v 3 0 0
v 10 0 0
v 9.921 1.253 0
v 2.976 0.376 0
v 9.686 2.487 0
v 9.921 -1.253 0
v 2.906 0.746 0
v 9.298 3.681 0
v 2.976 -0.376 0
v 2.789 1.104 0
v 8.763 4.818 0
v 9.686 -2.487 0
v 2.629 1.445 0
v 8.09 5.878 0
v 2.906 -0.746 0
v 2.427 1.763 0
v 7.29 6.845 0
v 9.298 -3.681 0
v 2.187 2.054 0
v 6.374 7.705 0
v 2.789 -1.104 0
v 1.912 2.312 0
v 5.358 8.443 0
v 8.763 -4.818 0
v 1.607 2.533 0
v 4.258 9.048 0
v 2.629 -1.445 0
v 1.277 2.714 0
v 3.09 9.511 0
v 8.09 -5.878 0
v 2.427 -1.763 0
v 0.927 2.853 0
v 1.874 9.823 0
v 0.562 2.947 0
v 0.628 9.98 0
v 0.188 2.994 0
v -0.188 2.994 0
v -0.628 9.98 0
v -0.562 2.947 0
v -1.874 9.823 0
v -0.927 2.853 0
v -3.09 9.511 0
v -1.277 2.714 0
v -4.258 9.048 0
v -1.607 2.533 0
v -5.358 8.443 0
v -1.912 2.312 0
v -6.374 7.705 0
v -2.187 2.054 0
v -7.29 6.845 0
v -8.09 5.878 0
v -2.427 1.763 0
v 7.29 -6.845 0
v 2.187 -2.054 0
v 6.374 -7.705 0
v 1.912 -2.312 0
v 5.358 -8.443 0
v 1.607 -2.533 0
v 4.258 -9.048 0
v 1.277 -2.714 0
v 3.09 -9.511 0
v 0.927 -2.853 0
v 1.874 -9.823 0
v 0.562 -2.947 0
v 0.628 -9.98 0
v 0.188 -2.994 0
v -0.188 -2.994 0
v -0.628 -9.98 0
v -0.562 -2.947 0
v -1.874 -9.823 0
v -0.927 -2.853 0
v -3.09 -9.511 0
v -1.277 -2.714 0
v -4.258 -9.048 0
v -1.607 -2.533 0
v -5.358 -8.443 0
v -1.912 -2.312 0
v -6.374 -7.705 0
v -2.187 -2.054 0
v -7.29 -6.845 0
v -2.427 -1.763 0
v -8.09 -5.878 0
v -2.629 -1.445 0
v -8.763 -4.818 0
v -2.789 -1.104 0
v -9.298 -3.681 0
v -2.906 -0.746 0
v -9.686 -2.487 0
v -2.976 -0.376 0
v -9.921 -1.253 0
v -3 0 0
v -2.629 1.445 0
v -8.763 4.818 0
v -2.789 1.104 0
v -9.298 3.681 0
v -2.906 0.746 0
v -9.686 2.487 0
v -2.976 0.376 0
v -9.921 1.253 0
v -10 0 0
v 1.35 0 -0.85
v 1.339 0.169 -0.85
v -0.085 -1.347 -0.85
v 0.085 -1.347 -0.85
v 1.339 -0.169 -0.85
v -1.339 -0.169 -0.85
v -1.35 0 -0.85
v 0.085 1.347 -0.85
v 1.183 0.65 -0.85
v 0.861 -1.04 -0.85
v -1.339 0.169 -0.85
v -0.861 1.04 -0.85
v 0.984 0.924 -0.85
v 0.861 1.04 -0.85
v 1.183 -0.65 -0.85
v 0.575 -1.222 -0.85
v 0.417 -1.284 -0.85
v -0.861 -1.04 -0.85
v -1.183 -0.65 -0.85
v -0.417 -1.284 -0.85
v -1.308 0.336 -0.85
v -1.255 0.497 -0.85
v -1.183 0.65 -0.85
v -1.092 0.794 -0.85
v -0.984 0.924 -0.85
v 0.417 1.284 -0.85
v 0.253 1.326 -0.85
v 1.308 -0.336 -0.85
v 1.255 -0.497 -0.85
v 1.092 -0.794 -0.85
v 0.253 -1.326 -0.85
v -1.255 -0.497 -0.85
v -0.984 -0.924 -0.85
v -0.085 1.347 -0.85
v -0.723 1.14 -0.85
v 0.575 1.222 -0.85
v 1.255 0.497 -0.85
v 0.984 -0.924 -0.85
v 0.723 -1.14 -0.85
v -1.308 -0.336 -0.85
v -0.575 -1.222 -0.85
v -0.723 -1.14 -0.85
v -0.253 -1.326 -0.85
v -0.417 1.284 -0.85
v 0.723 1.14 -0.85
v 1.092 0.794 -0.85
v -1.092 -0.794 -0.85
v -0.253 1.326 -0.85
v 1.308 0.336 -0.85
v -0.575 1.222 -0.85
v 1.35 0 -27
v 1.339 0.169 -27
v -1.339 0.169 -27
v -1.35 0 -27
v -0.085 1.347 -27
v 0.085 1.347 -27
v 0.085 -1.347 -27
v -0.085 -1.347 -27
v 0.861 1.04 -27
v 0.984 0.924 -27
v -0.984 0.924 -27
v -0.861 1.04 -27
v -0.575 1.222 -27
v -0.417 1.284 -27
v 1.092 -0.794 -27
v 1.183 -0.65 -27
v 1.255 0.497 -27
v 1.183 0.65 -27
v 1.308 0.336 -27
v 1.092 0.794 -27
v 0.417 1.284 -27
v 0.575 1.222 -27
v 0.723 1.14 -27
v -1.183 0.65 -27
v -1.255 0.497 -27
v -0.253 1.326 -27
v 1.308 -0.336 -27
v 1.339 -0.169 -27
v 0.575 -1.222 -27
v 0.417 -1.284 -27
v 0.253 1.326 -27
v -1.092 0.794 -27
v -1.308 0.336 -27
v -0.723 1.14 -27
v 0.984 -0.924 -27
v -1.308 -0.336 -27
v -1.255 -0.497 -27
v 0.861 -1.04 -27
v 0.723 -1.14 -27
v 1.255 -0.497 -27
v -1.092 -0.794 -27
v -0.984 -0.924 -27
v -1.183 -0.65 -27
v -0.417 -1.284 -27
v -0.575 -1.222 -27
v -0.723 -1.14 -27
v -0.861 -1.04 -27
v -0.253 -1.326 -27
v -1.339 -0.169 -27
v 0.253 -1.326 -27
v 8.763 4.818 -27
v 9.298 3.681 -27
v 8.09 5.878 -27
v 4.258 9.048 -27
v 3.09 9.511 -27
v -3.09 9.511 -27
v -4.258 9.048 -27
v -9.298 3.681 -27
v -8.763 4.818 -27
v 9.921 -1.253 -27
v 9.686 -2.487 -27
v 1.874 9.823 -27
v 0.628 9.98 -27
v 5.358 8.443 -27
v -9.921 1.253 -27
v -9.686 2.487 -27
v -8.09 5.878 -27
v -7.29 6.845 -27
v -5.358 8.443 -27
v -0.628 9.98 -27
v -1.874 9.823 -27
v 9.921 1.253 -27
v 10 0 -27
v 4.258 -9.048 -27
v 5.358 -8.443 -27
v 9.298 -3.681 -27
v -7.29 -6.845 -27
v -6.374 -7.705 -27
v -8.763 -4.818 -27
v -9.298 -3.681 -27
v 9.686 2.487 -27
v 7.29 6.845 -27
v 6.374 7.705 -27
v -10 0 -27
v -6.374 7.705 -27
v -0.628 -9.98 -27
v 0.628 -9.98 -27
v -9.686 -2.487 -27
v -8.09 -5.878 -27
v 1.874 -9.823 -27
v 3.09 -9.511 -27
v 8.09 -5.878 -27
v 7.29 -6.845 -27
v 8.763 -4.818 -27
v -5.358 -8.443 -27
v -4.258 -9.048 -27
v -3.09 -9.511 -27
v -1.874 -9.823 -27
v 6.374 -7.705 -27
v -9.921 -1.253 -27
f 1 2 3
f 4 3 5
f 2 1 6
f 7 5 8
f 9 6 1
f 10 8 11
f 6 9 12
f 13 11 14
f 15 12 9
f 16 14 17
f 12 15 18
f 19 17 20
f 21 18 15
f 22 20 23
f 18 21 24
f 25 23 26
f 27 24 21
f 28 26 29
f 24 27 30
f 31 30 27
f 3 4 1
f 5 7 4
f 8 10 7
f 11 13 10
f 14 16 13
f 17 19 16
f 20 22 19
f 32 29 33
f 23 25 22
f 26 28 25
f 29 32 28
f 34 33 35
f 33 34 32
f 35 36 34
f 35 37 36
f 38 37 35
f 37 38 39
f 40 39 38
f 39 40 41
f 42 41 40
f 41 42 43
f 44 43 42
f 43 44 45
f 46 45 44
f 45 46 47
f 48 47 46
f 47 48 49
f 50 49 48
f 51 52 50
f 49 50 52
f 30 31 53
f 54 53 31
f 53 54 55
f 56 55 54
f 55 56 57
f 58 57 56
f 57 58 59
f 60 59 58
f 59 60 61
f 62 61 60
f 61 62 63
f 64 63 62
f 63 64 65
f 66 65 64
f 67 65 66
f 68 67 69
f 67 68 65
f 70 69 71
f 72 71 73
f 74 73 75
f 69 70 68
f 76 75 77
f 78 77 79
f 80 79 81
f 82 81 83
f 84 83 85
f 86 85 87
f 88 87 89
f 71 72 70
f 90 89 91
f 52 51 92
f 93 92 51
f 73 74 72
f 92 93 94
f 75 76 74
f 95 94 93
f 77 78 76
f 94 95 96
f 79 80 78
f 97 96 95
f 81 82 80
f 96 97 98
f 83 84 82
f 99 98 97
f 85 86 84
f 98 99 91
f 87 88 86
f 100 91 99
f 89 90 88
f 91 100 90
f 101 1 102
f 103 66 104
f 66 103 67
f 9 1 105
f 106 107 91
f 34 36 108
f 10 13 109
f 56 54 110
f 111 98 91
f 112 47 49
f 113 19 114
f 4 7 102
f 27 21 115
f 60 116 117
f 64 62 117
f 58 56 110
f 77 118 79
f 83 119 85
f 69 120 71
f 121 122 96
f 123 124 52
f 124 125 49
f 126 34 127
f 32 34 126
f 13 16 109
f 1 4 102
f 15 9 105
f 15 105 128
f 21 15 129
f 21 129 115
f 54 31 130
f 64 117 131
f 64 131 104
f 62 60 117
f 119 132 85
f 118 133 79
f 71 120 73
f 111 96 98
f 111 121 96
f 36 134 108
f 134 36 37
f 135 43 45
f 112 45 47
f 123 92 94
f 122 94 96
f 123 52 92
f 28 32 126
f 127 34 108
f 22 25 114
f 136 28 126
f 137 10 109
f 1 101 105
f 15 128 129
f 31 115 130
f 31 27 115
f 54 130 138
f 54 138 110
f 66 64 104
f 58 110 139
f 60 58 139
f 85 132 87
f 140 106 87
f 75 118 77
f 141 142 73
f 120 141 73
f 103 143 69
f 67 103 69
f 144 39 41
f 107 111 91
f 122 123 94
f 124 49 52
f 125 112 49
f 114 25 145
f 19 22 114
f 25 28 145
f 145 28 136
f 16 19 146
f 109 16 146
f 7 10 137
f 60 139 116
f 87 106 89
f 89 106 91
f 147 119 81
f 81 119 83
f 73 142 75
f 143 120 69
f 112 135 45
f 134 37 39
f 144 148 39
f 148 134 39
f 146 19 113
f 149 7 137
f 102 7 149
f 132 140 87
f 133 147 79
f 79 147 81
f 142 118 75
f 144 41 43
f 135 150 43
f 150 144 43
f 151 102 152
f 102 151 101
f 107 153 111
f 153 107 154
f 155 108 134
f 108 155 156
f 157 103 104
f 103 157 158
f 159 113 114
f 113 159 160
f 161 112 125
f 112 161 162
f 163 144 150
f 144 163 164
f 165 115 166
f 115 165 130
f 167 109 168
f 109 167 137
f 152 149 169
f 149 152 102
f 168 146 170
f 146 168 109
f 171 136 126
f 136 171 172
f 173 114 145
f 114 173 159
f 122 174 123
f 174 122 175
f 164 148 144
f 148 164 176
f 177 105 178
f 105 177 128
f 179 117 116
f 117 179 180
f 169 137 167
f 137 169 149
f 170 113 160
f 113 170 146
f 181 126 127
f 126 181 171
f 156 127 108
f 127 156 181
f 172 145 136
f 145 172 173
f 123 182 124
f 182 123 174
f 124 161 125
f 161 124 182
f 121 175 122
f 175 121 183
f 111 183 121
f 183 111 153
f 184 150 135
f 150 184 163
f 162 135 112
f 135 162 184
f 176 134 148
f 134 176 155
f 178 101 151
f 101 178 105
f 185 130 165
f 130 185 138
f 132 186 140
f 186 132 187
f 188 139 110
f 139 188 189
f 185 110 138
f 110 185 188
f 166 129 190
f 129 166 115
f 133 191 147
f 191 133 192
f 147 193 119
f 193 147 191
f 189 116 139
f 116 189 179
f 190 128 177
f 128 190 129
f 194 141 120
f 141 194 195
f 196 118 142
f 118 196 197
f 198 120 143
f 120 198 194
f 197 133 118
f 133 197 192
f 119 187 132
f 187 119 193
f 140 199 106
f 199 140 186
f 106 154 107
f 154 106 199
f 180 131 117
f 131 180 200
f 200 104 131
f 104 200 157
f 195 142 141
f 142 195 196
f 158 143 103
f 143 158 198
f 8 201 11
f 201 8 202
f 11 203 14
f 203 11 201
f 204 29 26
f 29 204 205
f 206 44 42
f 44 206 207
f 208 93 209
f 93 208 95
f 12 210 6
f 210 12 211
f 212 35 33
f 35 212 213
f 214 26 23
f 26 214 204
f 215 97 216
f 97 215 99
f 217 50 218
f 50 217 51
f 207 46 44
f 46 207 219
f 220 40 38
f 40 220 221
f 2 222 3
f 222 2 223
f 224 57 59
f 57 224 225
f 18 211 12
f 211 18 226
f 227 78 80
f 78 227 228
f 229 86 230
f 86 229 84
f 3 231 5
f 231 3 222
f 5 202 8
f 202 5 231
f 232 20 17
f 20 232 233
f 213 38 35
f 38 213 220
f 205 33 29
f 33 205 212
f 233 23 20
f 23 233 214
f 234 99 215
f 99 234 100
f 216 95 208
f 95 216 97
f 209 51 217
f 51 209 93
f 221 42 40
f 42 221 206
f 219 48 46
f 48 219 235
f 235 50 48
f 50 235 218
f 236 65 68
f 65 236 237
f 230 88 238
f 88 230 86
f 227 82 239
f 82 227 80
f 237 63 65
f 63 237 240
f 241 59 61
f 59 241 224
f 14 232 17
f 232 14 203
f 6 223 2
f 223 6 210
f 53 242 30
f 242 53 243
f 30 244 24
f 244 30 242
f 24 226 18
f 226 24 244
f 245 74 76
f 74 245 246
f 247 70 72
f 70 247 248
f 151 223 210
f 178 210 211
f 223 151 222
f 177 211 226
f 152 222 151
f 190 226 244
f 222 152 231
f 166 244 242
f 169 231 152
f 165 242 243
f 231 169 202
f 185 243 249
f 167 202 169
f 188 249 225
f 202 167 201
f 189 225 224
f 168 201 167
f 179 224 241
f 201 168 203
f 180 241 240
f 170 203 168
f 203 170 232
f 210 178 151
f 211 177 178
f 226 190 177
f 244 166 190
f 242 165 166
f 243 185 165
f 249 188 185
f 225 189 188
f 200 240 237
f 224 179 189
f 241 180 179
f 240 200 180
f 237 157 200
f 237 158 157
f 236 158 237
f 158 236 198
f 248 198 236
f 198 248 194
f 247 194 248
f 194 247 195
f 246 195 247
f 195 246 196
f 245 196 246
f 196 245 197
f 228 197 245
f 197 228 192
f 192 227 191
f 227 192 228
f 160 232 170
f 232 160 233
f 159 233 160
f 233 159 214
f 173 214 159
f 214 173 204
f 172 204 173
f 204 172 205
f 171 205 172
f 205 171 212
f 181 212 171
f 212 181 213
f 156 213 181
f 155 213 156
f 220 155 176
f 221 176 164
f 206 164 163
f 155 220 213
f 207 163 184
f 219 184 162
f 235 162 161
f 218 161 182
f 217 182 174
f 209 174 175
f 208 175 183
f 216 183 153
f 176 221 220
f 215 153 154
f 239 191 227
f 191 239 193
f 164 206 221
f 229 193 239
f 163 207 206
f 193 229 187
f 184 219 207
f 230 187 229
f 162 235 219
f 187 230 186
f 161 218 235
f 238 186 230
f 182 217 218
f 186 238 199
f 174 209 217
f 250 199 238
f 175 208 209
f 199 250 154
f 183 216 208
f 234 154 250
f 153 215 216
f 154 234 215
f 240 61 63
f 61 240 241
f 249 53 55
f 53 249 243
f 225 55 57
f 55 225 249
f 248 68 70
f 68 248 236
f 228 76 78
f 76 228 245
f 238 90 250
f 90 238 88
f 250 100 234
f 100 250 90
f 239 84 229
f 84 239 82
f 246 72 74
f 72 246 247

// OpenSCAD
$fn = 50;

difference() {
	union() {
		translate(v = [0, 0, -27.0]) {
			cylinder(h = 27, r = 10.0);
		}
	}
	union() {
		translate(v = [0, 0, 0]) {
			rotate(a = [0, 0, 0]) {
				difference() {
					union() {
						translate(v = [0, 0, -30.0]) {
							cylinder(h = 30, r = 1.0);
						}
						translate(v = [0, 0, -0.85]) {
							cylinder(h = 0.85, r1 = 1.35, r2 = 3.0);
						}
						translate(v = [0, 0, -30.0]) {
							cylinder(h = 30, r = 1.35);
						}
						translate(v = [0, 0, -30.0]) {
							cylinder(h = 30, r = 1.0);
						}
					}
					union();
				}
			}
		}
	}
}
